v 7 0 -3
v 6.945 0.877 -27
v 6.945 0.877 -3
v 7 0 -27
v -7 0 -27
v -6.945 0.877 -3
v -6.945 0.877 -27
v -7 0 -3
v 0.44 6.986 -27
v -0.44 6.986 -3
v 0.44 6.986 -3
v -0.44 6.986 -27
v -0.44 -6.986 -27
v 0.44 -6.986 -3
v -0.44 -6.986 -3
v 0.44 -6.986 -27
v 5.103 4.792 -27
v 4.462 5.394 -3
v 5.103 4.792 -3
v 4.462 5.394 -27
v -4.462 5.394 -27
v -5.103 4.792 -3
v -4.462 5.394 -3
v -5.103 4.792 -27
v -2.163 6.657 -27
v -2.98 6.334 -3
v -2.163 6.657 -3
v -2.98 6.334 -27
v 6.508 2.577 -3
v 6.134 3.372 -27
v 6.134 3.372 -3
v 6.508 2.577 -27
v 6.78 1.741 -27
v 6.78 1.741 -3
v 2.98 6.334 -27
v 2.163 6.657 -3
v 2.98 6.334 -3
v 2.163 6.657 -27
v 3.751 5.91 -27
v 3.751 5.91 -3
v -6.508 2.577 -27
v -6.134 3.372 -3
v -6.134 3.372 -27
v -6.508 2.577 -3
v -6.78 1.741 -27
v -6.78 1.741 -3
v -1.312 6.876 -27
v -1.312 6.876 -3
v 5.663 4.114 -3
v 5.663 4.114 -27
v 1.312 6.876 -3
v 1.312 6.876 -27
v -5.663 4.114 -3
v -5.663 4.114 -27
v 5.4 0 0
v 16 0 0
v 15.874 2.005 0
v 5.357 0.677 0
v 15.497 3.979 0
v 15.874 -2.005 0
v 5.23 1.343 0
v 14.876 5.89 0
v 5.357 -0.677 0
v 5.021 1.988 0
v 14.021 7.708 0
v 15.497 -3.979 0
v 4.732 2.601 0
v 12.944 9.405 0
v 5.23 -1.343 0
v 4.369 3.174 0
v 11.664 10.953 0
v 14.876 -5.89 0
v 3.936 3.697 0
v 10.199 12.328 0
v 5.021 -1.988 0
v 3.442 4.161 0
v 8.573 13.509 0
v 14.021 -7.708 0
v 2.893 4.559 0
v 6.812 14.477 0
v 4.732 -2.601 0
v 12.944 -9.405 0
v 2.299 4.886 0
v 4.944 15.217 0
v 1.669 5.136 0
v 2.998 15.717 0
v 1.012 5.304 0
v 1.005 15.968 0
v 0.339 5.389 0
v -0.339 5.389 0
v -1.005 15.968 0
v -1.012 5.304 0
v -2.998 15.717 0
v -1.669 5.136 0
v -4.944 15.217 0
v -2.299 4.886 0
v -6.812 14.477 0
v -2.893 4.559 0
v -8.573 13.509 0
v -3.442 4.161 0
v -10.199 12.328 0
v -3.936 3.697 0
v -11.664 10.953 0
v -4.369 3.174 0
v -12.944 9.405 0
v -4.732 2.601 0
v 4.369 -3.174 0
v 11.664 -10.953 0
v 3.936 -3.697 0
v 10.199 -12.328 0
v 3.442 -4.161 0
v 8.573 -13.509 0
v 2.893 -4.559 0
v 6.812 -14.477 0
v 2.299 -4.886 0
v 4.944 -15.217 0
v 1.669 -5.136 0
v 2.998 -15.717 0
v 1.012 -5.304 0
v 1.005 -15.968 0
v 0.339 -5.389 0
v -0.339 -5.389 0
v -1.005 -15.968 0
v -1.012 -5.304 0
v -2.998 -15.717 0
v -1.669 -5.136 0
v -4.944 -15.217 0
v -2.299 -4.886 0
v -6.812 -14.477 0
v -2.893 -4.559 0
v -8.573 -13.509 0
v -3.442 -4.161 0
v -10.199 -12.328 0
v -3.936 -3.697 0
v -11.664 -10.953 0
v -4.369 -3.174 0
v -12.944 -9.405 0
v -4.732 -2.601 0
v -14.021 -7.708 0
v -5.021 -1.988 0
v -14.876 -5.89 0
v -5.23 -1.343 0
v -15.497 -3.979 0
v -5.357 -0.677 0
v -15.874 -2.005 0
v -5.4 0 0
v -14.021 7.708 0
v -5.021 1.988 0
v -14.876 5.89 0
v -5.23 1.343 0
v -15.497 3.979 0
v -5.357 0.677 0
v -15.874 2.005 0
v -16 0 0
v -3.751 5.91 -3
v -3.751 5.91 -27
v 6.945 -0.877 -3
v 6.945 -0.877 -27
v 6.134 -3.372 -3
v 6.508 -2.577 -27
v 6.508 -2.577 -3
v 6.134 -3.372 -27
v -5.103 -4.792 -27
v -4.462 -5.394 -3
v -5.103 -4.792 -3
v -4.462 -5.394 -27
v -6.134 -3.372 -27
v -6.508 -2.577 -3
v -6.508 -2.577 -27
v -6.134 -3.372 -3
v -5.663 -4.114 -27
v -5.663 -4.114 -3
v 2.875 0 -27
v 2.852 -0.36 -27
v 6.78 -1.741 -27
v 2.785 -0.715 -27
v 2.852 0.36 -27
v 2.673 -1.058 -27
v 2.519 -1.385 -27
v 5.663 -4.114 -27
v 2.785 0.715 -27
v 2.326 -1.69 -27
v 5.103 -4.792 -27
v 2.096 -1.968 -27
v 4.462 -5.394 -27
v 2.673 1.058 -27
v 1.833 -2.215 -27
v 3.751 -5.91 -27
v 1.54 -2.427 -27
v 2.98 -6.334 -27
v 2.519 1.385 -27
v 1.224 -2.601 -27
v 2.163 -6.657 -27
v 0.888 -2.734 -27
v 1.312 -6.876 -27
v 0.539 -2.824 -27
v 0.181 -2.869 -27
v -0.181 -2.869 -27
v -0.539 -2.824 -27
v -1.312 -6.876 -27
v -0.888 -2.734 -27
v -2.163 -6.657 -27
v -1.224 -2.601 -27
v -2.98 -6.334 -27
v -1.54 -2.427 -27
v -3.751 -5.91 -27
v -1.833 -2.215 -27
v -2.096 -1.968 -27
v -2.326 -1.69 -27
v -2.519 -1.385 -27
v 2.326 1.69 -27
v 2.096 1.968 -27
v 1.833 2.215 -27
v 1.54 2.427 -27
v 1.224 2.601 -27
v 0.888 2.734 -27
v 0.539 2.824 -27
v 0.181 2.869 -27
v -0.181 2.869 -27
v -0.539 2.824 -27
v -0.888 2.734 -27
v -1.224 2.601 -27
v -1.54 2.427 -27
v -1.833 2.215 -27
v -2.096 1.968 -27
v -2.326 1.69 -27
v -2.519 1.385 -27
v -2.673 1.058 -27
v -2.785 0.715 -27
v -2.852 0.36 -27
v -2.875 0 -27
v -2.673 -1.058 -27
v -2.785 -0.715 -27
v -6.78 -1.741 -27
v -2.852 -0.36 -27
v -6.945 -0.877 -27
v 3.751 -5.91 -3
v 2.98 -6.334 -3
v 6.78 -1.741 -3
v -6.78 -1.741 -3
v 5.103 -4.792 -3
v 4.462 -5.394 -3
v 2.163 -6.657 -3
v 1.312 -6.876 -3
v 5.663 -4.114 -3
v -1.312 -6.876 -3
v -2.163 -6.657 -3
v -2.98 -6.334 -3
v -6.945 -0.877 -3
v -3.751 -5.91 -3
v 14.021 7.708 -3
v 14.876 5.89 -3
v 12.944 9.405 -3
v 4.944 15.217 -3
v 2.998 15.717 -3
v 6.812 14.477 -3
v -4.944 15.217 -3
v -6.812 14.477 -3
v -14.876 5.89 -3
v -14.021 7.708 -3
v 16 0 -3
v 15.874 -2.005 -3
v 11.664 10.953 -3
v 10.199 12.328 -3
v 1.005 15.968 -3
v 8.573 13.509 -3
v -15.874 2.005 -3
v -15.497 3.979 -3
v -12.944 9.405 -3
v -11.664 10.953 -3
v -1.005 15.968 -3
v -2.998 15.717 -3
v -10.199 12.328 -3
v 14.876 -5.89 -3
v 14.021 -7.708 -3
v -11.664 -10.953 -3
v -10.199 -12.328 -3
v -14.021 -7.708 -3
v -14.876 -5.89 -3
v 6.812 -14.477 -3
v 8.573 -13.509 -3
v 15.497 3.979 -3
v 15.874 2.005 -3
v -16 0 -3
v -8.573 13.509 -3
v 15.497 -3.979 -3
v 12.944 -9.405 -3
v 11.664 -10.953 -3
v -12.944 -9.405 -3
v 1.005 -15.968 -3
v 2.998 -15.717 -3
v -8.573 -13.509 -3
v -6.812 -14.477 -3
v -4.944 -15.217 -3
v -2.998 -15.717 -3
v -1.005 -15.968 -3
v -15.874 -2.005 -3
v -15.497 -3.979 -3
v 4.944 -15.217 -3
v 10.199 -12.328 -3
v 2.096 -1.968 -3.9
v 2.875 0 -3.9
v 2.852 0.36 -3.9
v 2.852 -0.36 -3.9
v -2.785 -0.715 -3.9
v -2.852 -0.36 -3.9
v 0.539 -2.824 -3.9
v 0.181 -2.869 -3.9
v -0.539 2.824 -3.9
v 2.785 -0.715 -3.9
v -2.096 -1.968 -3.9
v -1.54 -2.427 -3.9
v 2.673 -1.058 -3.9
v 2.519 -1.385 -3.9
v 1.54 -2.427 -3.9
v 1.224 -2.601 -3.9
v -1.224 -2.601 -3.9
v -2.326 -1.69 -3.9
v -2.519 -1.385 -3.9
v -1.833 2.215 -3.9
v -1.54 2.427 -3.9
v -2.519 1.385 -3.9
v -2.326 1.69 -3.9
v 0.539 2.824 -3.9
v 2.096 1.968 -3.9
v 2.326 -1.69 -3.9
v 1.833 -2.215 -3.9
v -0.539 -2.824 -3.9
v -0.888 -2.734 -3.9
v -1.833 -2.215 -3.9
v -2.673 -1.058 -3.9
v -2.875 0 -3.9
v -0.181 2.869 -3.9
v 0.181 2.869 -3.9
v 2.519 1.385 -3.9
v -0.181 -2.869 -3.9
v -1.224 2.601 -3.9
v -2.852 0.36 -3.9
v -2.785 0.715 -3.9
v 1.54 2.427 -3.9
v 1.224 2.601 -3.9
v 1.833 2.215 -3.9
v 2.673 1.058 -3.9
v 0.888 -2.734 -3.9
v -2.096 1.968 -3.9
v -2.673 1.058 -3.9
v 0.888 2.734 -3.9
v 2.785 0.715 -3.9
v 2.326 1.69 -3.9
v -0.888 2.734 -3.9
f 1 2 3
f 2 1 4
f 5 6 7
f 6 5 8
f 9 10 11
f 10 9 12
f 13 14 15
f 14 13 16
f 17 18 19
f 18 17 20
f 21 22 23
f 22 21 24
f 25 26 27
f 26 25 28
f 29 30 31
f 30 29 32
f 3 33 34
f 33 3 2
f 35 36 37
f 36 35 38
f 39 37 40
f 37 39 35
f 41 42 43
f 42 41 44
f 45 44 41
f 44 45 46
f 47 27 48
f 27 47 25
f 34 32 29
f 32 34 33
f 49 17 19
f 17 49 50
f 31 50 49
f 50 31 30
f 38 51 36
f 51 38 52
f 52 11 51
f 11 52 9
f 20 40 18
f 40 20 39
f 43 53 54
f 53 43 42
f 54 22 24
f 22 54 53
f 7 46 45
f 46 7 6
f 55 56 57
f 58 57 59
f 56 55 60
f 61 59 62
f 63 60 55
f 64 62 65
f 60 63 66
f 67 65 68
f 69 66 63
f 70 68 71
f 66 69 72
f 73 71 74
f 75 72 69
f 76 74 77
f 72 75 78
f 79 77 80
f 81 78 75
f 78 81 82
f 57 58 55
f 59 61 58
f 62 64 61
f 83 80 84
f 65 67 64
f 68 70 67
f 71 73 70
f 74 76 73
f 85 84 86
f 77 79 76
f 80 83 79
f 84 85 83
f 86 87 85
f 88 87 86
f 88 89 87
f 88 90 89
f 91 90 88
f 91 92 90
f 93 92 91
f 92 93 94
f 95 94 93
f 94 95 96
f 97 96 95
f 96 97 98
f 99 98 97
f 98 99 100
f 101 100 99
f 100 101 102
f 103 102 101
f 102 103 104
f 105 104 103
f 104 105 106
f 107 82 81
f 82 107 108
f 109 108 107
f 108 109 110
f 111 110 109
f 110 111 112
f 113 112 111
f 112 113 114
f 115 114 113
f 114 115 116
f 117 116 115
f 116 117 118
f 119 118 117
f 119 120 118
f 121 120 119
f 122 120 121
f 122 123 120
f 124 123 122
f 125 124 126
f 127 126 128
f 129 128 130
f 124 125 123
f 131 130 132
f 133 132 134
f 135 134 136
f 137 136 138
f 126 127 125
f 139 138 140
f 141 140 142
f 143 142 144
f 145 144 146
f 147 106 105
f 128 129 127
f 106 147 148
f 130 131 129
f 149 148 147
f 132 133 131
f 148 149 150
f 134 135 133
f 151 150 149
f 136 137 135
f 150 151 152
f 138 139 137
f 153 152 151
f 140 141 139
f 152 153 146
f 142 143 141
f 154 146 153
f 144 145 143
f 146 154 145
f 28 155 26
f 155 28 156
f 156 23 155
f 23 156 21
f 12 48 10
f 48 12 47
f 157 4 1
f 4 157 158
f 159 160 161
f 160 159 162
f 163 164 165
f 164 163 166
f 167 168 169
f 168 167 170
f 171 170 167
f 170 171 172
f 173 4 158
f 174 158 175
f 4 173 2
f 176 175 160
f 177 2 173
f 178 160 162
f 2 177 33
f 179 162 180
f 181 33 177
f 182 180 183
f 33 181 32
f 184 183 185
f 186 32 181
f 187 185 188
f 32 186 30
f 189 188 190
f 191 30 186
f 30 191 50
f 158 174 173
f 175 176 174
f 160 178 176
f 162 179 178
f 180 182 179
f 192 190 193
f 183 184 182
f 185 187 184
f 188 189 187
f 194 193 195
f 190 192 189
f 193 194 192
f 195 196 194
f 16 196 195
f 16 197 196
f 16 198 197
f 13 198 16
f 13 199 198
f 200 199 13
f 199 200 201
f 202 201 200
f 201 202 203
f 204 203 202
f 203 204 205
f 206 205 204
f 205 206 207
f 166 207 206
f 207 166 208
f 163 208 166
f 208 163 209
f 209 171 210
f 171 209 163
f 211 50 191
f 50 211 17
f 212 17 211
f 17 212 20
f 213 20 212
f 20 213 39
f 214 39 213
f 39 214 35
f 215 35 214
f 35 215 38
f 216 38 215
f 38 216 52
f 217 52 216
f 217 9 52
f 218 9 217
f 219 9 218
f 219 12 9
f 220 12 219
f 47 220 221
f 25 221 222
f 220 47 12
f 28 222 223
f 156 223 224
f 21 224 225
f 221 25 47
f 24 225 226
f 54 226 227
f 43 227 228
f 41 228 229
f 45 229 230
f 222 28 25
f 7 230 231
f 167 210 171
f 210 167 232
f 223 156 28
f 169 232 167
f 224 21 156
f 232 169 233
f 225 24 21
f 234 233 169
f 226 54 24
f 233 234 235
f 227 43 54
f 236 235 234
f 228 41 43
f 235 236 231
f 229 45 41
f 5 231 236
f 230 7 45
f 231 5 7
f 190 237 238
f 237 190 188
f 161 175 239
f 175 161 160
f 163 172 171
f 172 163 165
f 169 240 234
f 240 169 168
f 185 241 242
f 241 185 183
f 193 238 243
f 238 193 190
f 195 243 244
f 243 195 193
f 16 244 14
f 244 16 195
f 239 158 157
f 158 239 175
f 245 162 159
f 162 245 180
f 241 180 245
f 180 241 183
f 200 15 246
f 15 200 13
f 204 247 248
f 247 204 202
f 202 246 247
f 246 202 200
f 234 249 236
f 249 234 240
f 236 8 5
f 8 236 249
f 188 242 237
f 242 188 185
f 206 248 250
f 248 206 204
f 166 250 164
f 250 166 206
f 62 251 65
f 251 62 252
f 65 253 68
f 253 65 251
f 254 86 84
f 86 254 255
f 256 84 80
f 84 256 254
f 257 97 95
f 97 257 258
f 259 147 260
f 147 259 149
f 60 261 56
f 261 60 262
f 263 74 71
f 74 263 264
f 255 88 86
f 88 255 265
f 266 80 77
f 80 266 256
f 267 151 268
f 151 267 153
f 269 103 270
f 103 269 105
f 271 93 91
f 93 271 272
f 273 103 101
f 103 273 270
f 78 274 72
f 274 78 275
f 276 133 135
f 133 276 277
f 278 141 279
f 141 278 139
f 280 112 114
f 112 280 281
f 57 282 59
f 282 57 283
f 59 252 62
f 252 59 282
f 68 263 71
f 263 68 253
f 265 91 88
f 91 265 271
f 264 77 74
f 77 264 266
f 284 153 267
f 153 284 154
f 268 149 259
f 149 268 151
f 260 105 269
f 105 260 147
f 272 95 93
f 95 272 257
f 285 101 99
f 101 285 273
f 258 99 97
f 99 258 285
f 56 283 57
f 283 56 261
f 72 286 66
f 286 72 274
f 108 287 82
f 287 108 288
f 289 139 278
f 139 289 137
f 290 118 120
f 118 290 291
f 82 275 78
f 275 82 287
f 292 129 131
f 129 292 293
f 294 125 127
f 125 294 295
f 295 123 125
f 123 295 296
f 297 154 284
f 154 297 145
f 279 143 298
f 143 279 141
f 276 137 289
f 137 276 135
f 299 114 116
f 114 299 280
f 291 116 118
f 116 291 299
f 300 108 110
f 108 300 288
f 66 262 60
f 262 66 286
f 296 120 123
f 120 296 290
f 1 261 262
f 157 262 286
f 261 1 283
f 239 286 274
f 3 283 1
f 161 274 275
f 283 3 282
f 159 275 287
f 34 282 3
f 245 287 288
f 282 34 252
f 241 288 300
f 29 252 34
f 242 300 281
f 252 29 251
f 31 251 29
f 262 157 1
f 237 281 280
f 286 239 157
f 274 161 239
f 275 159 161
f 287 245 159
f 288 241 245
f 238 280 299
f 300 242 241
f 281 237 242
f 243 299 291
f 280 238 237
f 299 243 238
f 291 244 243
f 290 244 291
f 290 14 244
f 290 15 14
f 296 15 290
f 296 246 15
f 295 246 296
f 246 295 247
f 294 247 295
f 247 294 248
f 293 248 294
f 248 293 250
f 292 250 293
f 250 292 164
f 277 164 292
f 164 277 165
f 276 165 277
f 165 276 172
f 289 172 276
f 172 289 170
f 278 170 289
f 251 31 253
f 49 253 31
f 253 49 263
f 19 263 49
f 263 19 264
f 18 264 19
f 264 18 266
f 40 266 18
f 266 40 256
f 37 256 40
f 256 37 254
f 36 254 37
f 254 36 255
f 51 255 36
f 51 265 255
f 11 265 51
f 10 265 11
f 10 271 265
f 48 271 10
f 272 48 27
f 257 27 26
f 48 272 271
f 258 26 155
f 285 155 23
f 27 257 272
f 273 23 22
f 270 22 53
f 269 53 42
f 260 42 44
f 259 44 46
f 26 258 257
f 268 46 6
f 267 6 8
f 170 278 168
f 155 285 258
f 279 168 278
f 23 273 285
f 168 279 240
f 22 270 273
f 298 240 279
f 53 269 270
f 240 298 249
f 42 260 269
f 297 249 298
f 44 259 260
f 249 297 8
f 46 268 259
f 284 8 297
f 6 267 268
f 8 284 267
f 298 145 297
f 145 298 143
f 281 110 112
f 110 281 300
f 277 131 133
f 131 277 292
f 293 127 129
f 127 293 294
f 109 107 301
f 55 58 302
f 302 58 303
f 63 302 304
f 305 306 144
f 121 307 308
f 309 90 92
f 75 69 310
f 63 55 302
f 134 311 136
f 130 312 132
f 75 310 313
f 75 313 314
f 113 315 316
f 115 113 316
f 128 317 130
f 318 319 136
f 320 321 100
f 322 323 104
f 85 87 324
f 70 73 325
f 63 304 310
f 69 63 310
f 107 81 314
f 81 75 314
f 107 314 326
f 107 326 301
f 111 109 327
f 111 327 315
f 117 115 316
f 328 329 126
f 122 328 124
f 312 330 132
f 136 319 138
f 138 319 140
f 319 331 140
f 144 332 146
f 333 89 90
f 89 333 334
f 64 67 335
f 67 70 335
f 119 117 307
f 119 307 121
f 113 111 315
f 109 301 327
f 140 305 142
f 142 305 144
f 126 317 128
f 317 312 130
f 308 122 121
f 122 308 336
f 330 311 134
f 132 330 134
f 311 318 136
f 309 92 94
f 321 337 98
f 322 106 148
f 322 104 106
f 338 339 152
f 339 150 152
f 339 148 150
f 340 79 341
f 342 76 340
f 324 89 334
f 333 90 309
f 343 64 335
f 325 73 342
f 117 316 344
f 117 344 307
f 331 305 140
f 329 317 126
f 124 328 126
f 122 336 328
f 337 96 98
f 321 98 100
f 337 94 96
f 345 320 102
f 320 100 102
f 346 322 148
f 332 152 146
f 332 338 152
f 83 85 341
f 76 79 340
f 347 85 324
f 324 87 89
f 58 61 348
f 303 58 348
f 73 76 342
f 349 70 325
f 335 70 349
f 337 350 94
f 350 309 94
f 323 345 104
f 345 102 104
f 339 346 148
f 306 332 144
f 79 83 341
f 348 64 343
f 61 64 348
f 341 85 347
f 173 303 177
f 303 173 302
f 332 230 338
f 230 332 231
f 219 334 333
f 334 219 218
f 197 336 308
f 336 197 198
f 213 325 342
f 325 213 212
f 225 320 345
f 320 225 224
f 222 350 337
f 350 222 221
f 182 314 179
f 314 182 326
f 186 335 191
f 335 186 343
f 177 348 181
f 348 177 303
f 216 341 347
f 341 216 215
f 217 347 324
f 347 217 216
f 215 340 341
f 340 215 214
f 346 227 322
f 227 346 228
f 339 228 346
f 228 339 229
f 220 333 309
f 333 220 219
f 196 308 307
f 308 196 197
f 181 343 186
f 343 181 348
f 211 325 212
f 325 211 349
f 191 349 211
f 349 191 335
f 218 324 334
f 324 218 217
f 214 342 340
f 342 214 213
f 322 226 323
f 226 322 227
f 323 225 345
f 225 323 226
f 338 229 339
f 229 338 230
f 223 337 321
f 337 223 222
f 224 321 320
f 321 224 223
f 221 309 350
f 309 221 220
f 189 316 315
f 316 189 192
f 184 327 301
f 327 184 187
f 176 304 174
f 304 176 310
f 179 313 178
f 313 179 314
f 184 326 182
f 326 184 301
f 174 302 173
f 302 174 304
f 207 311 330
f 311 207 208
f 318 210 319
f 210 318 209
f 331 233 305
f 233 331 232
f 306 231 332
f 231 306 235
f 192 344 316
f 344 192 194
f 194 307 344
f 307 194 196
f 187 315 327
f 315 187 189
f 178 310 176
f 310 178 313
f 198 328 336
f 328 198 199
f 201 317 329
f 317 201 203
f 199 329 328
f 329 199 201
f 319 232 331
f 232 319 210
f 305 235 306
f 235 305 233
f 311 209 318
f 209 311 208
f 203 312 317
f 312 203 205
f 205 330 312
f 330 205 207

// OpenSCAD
$fn = 50;


difference() {
	union() {
		translate(v = [0, 0, -27.0000000000]) {
			cylinder(h = 27, r = 7.0000000000);
		}
		translate(v = [0, 0, -3.0000000000]) {
			cylinder(h = 3, r = 16.0000000000);
		}
	}
	union() {
		translate(v = [0, 0, 0]) {
			rotate(a = [0, 0, 0]) {
				difference() {
					union() {
						#translate(v = [0, 0, -27.0000000000]) {
							cylinder(h = 27, r = 2.6000000000);
						}
						#translate(v = [0, 0, -3.9000000000]) {
							cylinder(h = 3.9000000000, r = 7.0000000000, r1 = 2.8750000000, r2 = 5.4000000000);
						}
						#translate(v = [0, 0, -27.0000000000]) {
							cylinder(h = 27, r = 2.8750000000);
						}
						#translate(v = [0, 0, -27.0000000000]) {
							cylinder(h = 27, r = 2.6000000000);
						}
					}
					union();
				}
			}
		}
	}
}
